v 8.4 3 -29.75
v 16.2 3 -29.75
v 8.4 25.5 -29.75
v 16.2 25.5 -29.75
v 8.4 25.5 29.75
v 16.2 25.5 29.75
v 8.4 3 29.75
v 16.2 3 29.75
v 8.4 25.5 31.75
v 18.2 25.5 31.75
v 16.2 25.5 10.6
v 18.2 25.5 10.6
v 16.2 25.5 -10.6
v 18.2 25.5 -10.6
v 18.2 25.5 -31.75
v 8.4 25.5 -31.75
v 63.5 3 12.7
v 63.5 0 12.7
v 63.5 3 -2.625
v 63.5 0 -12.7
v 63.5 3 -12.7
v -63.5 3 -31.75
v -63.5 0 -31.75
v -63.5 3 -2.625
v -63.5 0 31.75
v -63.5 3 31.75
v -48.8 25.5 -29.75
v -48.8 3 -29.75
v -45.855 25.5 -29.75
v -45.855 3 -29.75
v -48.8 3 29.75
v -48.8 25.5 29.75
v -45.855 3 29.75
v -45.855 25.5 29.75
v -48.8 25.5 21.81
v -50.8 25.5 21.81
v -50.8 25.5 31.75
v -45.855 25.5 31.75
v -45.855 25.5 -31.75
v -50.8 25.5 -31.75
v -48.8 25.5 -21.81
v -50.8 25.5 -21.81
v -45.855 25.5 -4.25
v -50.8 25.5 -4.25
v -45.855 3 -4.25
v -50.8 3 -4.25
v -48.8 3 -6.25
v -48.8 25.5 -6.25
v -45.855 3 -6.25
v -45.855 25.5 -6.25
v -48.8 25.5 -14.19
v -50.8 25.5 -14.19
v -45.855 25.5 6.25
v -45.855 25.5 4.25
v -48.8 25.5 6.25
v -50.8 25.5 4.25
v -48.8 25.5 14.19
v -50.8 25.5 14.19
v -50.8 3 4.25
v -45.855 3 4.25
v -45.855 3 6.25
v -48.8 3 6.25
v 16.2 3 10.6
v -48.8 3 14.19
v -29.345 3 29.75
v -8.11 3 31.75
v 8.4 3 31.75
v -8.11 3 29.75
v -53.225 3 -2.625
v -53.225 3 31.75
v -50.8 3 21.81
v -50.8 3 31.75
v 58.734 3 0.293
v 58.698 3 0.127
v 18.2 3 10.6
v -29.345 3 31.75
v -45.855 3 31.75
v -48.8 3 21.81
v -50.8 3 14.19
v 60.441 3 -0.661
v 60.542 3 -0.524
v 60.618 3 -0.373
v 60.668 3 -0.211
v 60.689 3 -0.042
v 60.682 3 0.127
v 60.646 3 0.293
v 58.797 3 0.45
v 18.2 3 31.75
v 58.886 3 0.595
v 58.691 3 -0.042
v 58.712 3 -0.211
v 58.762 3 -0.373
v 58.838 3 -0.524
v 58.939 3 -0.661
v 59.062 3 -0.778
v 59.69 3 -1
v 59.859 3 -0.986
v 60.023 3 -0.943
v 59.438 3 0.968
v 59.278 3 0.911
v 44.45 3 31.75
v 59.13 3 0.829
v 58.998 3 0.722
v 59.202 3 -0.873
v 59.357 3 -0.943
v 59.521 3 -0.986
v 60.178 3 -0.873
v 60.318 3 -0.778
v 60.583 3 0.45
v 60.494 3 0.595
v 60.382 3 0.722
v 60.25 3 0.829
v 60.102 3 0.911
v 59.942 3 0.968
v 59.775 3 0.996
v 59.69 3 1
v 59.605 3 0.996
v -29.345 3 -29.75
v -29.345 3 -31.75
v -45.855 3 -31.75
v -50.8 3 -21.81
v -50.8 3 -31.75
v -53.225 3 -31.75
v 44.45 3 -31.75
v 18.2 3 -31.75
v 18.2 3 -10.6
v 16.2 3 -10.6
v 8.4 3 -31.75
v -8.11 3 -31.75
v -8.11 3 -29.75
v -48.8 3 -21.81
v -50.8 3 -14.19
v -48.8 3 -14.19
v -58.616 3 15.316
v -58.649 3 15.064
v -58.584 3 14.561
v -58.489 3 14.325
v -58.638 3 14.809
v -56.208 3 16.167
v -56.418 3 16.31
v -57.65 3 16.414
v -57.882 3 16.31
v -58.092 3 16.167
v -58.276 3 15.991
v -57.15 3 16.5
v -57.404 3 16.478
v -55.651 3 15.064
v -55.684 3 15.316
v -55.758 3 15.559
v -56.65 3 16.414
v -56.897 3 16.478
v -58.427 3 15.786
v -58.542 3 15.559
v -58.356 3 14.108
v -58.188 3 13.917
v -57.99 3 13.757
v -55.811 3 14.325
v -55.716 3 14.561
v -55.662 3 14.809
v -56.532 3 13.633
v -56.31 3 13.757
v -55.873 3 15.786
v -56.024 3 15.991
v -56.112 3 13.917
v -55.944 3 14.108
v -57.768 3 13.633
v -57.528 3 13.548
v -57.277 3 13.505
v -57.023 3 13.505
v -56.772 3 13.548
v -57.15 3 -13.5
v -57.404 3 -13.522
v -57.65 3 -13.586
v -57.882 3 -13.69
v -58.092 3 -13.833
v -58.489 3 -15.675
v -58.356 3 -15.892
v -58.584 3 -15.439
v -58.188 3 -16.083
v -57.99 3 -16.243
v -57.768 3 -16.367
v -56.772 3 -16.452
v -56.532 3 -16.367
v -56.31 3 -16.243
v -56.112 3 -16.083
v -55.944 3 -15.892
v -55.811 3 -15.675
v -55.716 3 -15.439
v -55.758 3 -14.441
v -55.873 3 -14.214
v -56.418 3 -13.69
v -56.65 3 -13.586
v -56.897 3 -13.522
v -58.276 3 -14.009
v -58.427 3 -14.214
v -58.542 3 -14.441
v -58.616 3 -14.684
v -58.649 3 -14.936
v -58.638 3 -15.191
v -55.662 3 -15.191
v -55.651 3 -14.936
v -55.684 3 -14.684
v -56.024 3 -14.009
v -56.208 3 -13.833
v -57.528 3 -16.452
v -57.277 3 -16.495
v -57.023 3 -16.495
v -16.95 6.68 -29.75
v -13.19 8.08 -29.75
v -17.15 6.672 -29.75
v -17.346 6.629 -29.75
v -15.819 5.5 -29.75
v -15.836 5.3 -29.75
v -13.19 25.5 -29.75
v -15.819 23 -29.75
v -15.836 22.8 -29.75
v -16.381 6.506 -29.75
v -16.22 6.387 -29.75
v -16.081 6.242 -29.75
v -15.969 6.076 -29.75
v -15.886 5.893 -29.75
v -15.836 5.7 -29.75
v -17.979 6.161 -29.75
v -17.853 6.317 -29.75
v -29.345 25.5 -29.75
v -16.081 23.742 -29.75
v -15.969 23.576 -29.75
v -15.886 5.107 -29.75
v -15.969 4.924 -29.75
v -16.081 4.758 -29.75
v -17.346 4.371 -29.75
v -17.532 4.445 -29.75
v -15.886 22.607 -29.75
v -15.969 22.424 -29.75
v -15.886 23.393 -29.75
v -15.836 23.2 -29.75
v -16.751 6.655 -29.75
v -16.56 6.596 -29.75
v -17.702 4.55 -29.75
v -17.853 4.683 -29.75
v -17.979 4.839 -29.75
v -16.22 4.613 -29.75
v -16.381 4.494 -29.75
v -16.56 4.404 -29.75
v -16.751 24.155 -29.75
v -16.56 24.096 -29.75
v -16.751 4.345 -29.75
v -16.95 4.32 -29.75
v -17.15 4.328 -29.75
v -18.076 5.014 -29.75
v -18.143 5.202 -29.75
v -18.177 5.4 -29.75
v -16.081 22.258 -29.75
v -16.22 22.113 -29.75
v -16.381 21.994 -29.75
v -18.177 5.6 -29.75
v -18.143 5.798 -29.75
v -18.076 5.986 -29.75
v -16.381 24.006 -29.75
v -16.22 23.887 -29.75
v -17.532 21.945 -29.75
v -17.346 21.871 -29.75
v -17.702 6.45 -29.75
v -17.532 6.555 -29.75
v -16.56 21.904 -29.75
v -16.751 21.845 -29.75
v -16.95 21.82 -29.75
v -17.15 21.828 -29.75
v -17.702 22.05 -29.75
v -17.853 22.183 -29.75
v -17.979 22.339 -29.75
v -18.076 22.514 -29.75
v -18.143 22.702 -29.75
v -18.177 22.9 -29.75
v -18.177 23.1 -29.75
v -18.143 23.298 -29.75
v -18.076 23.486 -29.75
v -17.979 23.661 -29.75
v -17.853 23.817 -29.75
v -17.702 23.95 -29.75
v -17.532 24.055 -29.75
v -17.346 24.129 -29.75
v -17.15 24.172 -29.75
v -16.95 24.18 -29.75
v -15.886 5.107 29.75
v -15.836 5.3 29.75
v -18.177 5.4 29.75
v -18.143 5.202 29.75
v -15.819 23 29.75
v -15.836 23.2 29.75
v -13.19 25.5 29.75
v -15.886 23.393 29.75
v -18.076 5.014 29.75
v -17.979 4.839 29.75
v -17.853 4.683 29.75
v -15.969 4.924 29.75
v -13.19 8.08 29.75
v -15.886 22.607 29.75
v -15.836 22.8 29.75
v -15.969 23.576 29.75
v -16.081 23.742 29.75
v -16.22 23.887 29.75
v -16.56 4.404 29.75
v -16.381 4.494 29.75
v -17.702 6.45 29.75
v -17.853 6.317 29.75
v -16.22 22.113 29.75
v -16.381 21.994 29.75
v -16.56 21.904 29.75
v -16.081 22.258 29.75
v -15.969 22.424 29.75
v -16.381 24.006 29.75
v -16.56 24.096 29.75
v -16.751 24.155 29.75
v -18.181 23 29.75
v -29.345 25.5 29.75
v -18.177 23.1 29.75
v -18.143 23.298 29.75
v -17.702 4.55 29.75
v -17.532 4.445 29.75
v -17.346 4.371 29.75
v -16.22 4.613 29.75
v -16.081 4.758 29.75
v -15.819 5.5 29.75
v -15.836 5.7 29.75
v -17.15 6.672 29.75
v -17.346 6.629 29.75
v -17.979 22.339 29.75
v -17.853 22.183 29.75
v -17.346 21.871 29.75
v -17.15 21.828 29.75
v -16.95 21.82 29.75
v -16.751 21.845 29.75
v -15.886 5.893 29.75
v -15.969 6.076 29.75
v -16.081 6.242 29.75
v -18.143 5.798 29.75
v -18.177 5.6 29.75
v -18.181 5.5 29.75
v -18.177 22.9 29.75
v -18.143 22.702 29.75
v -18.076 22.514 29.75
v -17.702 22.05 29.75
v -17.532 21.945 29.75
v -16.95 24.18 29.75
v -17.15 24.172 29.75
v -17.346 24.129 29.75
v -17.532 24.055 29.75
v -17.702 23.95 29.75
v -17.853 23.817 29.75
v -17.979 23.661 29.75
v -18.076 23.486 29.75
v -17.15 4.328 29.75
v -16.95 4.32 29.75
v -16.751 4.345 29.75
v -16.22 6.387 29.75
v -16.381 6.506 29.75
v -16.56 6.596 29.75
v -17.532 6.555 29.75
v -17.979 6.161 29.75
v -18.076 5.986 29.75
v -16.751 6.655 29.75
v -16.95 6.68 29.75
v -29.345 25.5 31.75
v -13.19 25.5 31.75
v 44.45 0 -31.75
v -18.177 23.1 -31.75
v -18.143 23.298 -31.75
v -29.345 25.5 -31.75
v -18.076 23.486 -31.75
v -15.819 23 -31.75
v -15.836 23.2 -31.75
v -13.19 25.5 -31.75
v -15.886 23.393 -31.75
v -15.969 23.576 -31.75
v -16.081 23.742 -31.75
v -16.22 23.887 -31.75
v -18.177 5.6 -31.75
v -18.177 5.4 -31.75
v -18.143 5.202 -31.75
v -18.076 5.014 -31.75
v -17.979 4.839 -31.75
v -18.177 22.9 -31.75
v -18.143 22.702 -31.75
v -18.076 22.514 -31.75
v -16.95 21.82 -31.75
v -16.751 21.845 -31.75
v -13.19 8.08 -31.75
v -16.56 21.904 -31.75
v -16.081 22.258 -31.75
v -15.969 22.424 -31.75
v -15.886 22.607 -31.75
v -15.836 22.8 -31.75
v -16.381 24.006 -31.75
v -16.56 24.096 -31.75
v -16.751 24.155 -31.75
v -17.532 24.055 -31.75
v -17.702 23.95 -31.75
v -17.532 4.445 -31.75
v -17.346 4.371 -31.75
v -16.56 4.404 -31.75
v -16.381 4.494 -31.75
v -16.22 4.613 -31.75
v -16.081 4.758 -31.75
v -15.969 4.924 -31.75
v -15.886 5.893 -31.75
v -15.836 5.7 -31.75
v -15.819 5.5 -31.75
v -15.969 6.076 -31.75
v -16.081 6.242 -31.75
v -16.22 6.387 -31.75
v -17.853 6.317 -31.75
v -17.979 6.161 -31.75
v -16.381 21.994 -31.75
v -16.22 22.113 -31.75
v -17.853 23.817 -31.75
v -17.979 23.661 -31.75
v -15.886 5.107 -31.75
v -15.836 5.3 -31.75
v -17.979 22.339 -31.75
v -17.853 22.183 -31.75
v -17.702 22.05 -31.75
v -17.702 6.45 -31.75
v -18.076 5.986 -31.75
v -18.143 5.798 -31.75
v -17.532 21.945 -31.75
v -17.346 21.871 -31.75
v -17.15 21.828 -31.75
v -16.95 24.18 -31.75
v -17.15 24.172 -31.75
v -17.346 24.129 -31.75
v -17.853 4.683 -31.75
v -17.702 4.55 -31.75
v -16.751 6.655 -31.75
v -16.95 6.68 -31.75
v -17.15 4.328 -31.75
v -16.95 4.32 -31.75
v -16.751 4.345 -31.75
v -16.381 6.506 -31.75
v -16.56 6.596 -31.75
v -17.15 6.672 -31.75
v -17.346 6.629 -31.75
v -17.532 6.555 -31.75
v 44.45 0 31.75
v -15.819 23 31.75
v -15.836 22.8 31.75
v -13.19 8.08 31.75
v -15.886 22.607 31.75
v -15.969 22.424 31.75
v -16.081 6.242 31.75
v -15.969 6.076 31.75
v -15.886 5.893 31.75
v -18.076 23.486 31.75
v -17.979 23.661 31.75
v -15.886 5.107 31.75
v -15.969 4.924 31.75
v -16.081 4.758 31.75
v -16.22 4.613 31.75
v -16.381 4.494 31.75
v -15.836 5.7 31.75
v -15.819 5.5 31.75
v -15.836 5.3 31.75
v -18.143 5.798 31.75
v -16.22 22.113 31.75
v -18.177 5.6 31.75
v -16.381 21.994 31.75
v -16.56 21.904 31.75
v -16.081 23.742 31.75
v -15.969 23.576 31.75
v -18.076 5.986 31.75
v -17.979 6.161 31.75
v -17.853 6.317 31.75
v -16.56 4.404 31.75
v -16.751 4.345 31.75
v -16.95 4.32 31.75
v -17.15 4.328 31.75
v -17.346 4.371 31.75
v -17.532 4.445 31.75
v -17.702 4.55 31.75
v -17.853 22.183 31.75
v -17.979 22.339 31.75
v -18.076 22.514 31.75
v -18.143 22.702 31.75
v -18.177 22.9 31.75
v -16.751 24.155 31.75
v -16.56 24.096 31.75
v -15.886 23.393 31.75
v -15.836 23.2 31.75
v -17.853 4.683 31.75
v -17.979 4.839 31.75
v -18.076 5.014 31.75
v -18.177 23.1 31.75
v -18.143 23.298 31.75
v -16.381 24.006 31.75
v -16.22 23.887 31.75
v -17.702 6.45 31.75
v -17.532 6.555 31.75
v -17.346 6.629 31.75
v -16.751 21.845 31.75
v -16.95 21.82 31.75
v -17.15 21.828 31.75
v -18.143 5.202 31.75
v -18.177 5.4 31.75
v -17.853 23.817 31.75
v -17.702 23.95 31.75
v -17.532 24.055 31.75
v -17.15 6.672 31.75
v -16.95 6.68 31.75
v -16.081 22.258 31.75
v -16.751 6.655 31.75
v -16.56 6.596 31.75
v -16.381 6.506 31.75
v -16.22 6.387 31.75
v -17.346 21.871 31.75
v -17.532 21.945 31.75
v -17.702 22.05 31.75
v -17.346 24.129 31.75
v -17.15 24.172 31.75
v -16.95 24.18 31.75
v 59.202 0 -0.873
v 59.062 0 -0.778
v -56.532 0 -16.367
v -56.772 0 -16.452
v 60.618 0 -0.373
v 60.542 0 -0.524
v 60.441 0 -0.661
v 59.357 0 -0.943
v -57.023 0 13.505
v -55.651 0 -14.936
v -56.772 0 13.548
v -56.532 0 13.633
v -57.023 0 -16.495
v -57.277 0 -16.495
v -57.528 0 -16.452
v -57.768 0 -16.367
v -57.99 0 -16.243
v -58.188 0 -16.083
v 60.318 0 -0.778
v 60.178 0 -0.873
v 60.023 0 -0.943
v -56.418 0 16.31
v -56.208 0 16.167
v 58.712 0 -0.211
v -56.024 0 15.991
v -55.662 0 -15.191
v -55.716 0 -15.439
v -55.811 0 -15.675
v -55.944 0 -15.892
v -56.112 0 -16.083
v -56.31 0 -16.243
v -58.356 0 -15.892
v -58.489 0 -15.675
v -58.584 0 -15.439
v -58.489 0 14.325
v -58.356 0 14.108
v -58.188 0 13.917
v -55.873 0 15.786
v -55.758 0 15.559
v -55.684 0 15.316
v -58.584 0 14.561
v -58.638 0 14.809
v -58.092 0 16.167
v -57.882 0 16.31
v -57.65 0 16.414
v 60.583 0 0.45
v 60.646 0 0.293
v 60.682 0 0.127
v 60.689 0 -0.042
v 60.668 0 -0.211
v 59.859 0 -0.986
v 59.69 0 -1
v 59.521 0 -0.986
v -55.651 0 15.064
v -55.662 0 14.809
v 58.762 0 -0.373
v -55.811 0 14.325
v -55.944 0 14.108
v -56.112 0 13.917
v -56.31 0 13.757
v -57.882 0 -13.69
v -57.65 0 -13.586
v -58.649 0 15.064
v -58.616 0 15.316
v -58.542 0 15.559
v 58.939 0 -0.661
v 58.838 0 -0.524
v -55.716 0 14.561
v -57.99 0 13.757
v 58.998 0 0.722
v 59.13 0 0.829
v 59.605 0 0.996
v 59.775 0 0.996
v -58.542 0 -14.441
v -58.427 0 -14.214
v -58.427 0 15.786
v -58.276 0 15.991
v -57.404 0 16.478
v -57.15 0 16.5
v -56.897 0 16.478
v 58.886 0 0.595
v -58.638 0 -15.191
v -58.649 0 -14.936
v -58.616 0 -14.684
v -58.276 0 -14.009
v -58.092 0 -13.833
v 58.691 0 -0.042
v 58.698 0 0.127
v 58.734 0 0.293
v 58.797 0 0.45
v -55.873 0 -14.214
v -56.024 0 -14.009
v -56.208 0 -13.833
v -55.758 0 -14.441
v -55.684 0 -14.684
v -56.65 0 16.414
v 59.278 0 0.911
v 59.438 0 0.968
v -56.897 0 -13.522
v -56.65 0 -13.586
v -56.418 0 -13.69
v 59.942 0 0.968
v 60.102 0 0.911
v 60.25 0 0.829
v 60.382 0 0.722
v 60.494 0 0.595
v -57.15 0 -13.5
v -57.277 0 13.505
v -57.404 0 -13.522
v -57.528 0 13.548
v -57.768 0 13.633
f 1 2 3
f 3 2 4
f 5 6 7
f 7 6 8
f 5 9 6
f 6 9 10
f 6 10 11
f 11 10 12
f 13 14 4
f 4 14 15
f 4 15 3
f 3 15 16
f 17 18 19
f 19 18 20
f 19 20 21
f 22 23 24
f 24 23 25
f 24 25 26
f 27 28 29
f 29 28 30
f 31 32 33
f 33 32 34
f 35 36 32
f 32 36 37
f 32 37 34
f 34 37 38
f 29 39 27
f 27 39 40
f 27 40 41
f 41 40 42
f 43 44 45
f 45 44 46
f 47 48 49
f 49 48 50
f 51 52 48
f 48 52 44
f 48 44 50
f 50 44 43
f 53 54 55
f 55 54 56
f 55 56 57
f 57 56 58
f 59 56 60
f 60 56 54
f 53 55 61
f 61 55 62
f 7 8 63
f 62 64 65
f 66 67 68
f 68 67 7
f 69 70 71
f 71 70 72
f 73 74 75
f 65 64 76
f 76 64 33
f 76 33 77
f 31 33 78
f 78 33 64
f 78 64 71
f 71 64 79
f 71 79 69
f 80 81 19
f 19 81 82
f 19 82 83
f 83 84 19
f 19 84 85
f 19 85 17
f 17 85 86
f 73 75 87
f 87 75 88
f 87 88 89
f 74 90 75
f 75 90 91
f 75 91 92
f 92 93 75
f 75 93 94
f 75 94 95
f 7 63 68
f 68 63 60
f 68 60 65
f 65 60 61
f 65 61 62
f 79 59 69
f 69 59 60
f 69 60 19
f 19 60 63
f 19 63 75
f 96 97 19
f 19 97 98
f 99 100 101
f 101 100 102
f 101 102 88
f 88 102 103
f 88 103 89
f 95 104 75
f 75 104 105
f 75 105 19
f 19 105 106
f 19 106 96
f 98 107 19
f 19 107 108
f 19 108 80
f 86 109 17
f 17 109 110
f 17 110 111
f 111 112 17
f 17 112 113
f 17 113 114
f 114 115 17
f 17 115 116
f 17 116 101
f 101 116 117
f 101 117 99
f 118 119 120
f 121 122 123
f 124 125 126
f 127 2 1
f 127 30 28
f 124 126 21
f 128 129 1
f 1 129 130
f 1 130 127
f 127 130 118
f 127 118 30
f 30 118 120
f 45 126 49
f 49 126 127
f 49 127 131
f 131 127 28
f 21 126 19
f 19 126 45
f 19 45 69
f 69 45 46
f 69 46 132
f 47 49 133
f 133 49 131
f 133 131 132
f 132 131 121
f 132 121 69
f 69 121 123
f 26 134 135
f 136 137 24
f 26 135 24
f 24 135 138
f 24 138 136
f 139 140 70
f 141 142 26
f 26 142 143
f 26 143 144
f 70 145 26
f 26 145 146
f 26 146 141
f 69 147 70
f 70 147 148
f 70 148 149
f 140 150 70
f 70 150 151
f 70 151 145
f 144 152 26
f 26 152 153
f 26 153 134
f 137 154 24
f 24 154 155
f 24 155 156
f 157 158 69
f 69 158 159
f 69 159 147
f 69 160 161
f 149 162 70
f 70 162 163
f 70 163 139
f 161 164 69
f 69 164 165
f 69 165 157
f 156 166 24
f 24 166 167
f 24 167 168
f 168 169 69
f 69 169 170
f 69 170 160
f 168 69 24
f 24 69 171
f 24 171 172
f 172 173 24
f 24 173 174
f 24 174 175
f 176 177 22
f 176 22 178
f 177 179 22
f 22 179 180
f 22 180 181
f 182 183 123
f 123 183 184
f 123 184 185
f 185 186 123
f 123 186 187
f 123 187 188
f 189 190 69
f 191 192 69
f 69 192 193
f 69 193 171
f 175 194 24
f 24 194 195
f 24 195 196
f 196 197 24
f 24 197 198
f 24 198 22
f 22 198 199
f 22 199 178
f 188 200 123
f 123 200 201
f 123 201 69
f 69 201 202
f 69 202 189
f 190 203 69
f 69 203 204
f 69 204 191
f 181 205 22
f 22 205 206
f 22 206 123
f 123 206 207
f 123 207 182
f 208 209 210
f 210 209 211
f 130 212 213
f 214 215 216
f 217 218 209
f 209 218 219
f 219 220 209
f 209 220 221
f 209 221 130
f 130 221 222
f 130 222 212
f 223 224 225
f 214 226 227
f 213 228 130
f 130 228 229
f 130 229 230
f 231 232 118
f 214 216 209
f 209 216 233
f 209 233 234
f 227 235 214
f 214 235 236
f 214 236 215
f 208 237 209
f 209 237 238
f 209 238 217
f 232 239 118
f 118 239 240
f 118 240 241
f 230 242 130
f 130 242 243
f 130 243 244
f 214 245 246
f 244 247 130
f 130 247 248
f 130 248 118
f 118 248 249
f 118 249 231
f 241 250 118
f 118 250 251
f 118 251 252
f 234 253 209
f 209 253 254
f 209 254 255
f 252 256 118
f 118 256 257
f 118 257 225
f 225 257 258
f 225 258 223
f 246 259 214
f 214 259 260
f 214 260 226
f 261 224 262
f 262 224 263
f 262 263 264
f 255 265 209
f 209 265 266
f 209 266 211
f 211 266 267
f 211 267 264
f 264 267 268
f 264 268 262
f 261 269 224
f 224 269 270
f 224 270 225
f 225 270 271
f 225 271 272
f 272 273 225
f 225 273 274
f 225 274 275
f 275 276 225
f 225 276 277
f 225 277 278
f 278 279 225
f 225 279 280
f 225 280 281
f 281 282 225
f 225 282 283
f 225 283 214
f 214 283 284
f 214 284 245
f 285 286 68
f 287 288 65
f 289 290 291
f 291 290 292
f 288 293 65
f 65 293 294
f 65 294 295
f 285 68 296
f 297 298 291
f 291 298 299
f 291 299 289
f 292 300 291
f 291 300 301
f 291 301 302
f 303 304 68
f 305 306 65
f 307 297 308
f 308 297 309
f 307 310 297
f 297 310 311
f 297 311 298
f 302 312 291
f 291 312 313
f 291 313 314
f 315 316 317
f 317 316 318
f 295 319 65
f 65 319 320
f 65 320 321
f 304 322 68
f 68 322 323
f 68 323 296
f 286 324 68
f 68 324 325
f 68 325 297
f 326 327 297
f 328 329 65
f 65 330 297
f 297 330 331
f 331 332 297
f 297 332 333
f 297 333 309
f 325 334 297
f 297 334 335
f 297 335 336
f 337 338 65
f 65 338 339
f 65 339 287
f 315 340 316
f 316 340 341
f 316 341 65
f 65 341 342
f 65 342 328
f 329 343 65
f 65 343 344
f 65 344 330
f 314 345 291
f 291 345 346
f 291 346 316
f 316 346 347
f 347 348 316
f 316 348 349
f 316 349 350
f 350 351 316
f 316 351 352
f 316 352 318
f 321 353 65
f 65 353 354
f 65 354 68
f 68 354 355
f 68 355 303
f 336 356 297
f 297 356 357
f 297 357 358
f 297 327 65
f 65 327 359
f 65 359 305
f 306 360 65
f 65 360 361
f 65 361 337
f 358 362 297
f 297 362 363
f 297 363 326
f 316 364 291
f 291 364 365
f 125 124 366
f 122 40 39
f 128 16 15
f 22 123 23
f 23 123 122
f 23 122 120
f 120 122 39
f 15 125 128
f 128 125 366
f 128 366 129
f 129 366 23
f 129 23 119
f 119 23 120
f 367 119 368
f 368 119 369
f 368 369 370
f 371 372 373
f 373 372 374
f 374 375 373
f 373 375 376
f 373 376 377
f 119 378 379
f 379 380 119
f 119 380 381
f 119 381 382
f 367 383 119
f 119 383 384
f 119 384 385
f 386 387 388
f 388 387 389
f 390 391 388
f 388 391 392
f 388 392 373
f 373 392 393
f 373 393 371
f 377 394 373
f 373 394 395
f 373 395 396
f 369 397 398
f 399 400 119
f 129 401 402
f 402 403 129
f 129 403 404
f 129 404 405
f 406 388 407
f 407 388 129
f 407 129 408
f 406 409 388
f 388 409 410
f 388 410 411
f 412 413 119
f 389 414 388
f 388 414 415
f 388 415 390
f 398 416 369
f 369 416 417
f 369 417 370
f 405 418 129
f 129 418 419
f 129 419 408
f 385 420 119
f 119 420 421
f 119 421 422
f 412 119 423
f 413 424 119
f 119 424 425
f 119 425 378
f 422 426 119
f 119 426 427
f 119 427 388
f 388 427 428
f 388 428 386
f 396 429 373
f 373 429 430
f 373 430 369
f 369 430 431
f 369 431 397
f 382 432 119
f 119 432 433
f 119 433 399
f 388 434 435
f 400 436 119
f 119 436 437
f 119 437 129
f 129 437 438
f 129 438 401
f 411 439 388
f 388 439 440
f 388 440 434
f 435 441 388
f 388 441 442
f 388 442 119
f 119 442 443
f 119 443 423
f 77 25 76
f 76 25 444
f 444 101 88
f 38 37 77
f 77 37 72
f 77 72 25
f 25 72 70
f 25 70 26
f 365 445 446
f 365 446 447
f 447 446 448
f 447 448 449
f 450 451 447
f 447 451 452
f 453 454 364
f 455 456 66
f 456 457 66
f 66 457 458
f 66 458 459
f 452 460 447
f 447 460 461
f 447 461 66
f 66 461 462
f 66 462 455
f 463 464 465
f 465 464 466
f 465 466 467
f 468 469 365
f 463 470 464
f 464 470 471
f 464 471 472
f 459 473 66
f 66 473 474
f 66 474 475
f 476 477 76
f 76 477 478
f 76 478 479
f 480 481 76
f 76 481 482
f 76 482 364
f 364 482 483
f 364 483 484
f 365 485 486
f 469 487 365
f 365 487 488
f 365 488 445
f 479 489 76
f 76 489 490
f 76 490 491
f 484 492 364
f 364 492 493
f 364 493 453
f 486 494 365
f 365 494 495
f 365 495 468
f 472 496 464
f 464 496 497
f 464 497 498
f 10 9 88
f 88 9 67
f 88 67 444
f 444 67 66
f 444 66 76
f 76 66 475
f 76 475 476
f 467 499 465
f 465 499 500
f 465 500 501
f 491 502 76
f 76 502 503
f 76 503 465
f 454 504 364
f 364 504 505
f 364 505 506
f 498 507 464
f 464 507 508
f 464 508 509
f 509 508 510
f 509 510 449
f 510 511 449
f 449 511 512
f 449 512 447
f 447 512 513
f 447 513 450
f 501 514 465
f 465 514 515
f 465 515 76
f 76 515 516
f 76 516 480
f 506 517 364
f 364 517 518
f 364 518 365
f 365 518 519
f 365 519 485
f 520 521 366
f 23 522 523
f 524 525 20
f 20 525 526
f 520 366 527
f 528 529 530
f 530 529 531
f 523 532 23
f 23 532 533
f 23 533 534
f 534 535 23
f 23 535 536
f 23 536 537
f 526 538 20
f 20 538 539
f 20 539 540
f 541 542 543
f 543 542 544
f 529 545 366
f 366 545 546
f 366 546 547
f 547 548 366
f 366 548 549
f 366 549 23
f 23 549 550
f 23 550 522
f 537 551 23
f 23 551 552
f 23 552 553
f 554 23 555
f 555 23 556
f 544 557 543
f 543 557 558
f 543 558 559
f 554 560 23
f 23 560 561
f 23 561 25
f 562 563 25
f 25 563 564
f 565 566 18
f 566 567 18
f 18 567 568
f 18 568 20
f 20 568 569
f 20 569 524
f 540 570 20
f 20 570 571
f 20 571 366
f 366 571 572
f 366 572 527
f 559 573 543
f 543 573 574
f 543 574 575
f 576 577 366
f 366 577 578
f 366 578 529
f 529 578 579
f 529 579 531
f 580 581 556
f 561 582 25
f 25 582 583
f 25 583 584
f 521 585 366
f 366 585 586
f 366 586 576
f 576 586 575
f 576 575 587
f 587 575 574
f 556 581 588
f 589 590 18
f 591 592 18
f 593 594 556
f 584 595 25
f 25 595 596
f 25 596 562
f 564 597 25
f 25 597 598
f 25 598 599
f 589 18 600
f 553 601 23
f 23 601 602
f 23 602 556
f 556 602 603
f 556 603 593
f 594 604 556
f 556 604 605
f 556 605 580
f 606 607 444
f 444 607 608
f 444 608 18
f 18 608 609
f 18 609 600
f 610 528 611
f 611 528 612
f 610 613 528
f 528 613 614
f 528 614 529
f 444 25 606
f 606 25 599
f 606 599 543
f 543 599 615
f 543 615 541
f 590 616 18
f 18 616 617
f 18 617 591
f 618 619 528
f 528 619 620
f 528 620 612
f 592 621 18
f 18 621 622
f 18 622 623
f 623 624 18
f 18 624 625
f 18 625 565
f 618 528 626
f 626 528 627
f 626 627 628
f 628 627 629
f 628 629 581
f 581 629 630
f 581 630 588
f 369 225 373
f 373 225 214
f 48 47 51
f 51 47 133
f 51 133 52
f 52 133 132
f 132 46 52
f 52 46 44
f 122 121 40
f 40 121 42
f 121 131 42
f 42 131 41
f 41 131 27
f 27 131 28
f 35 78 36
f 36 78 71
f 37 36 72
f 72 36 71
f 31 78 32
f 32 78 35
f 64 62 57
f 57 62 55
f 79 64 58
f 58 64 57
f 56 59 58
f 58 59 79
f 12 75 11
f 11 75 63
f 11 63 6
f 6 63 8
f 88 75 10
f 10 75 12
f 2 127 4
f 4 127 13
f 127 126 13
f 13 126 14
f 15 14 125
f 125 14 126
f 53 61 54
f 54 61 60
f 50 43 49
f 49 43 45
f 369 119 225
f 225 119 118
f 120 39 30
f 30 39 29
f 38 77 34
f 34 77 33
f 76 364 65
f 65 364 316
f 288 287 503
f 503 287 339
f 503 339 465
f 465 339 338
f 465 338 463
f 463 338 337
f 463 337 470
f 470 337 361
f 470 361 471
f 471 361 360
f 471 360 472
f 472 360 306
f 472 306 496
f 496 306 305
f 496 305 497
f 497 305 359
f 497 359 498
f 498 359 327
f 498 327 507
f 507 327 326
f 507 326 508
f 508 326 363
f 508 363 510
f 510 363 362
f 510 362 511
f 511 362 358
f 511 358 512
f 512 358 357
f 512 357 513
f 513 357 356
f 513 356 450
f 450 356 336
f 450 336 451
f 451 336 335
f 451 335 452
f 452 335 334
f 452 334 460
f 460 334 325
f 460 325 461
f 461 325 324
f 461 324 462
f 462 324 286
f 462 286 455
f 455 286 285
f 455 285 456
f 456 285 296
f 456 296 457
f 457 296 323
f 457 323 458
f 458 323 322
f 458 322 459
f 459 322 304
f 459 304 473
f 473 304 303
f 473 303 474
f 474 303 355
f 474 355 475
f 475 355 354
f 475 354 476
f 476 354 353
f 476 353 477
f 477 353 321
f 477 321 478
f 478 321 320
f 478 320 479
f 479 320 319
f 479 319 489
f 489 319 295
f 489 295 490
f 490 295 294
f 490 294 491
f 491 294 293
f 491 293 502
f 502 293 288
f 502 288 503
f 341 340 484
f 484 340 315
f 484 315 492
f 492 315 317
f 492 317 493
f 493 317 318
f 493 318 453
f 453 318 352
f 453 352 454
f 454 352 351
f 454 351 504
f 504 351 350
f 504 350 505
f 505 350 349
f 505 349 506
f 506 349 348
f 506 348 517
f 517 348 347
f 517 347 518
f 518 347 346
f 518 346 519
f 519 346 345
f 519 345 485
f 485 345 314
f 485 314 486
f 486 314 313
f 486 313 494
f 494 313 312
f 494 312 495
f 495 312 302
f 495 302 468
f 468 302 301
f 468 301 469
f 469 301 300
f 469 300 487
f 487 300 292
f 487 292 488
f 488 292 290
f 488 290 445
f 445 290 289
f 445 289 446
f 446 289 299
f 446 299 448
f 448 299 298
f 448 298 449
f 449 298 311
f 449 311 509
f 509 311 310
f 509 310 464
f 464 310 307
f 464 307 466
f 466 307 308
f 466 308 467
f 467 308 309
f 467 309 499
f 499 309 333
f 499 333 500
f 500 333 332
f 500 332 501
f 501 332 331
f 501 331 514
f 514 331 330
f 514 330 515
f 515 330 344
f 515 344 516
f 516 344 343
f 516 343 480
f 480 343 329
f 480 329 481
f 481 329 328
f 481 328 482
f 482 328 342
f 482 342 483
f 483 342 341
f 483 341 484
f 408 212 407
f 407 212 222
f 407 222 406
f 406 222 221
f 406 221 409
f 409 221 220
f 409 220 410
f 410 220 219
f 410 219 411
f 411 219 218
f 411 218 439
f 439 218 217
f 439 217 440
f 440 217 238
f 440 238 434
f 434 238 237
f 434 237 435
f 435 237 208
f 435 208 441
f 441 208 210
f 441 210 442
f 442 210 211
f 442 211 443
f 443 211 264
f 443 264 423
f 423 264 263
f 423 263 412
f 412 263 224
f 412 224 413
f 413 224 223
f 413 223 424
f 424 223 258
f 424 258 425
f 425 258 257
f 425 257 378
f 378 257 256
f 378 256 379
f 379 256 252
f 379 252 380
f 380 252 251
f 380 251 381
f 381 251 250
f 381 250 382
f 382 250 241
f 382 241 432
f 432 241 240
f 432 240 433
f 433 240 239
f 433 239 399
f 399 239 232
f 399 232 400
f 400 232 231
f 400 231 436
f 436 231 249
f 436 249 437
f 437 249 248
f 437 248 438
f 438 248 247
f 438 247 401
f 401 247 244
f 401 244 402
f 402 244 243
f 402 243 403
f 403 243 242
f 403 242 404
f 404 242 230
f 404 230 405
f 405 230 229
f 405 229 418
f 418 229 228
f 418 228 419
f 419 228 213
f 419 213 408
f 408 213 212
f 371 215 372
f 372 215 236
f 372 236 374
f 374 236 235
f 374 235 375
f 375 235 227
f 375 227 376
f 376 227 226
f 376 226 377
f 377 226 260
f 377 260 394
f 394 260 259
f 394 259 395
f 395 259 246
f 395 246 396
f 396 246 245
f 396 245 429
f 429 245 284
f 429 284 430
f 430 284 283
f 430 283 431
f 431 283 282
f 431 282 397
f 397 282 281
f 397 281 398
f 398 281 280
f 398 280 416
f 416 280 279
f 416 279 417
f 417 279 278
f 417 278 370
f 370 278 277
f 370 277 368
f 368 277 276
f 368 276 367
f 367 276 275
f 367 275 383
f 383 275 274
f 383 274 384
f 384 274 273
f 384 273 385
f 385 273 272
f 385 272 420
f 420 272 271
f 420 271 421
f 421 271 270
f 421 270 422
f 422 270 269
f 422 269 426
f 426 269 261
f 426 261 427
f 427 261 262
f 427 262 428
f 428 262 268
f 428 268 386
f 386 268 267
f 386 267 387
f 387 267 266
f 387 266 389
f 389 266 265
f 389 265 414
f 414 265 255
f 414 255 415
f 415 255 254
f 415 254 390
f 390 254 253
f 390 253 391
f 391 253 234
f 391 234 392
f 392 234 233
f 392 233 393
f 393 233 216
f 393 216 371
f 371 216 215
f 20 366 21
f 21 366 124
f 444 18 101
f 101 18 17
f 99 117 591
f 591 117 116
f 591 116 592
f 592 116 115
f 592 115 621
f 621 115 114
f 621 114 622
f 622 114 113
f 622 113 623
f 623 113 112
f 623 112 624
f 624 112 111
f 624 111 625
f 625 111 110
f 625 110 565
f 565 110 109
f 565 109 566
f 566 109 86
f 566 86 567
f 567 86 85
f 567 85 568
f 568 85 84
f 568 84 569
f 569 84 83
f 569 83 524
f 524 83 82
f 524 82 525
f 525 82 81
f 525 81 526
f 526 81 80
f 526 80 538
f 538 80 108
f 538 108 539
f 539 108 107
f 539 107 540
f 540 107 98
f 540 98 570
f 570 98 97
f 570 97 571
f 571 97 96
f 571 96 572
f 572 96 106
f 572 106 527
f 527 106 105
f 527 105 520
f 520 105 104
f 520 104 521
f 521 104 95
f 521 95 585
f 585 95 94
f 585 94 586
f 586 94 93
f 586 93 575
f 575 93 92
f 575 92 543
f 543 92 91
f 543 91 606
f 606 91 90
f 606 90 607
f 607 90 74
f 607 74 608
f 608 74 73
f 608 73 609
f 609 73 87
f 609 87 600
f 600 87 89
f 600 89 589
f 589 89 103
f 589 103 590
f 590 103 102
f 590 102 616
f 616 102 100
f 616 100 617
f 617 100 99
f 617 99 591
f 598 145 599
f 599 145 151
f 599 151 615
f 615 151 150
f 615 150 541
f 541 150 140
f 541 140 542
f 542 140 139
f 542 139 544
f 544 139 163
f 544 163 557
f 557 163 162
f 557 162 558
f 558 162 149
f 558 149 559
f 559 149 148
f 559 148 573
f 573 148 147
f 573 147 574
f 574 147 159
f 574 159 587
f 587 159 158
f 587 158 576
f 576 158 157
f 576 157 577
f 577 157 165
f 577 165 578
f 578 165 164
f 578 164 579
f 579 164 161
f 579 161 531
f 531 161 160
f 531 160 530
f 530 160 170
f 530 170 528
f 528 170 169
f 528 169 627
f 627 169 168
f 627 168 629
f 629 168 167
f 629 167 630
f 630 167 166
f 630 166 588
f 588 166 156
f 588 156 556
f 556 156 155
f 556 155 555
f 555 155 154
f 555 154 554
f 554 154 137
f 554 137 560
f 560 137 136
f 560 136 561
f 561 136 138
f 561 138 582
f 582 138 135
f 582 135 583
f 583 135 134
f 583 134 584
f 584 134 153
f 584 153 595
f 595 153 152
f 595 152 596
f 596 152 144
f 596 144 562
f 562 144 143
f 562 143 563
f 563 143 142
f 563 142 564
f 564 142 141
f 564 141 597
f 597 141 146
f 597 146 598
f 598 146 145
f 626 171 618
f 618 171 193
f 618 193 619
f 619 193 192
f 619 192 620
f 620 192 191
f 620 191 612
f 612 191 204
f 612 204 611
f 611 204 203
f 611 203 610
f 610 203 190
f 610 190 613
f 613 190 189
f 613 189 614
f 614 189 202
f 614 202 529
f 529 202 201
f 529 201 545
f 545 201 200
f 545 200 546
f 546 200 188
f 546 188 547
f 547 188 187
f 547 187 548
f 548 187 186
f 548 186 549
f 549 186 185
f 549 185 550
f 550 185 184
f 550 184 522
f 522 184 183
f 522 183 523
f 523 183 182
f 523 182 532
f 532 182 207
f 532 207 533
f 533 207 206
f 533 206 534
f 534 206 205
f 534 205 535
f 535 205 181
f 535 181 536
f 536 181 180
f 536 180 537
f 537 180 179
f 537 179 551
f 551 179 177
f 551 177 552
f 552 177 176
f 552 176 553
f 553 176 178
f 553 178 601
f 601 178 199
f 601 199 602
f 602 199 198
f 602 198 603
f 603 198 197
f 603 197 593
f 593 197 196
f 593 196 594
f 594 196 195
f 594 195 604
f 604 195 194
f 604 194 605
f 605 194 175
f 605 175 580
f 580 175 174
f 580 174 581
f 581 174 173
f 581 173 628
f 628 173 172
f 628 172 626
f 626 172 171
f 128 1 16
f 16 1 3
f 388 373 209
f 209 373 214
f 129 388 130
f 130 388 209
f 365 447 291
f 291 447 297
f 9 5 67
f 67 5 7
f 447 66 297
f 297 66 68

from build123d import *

# Parameters (mm, degrees)
SKETCH1_W               = 127
SKETCH1_H               = 63.5
BOSS_EXTRUDE1_DEPTH     = 3
BOSS_EXTRUDE2_DEPTH     = 22.5
SKETCH3_W               = 15.24
SKETCH3_H               = 22.5
CUT_EXTRUDE1_DEPTH      = 132.466012718
SKETCH4_W               = 2
SKETCH4_H               = 7.94
SKETCH4_H_2             = 19.15
BOSS_EXTRUDE4_DEPTH     = 22.5
SKETCH5_W               = 16.51
SKETCH5_H               = 22.5
CUT_EXTRUDE2_DEPTH      = 93.004075997
CUT_EXTRUDE2_DEPTH_BACK = 93.004075997
SKETCH6_W               = 12.7
SKETCH6_H               = 2
CUT_EXTRUDE3_DEPTH      = 22.5
CUT_EXTRUDE4_DEPTH      = 94.352825346
CUT_EXTRUDE5_DEPTH      = 76.43581709
F_2_0MM_DOWEL_HOLE1_D   = 2
SKETCH13_W              = 34.845
SKETCH13_H              = 22.5
CUT_EXTRUDE6_DEPTH      = 12.5
F_3_0MM_DOWEL_HOLE1_D   = 3
CUT_EXTRUDE7_DEPTH      = 94.352825346


with BuildPart() as part:
    # Sketch1 → Boss-Extrude1 (new body)
    with BuildSketch(Plane(origin=(0, 0, 0), x_dir=(1, 0, 0), z_dir=(0, 1, 0))):
        Rectangle(SKETCH1_W, SKETCH1_H)
    extrude(amount=BOSS_EXTRUDE1_DEPTH)

    # Sketch2 → Boss-Extrude2 (add)
    with BuildSketch(Plane(origin=(0, 3, 0), x_dir=(1, 0, 0), z_dir=(0, 1, 0))):
        Polygon((-63.5, 29.75), (-61.5, 29.75), (61.5, 29.75), (61.5, -29.75), (-61.5, -29.75), (-63.5, -29.75), (-63.5, -31.75), (63.5, -31.75), (63.5, 31.75), (-63.5, 31.75), align=None)
    extrude(amount=BOSS_EXTRUDE2_DEPTH)

    # Sketch3 → Cut-Extrude1 (cut, through all)
    with BuildSketch(Plane.ZY.offset(-61.5)):
        with Locations((0, 14.25)):
            Rectangle(SKETCH3_W, SKETCH3_H)
    extrude(amount=-CUT_EXTRUDE1_DEPTH, mode=Mode.SUBTRACT)

    # Sketch4 → Boss-Extrude4 (add)
    with BuildSketch(Plane(origin=(0, 3, 0), x_dir=(1, 0, 0), z_dir=(0, 1, 0))):
        with Locations((-49.8, -25.78)):
            Rectangle(SKETCH4_W, SKETCH4_H)
        with Locations((17.2, -20.175)):
            Rectangle(SKETCH4_W, SKETCH4_H_2)
        Polygon((-50.8, -14.19), (-48.8, -14.19), (-48.8, -6.25), (5.5, -6.25), (5.5, -4.25), (-50.8, -4.25), align=None)
        with Locations((-49.8, 25.78)):
            Rectangle(SKETCH4_W, SKETCH4_H)
        Polygon((-48.8, 14.19), (-50.8, 14.19), (-50.8, 4.25), (5.5, 4.25), (5.5, 6.25), (-48.8, 6.25), align=None)
        with Locations((17.2, 20.175)):
            Rectangle(SKETCH4_W, SKETCH4_H_2)
    extrude(amount=BOSS_EXTRUDE4_DEPTH)

    # Sketch5 → Cut-Extrude2 (cut, two sides)
    with BuildSketch(Plane(origin=(0, 0, 29.75), x_dir=(-1, 0, 0), z_dir=(0, 0, -1))) as cut_extrude2_sk:
        with Locations((37.6, 14.25)):
            Rectangle(SKETCH5_W, SKETCH5_H)
    extrude(amount=CUT_EXTRUDE2_DEPTH, mode=Mode.SUBTRACT)
    extrude(cut_extrude2_sk.sketch, amount=-CUT_EXTRUDE2_DEPTH_BACK, mode=Mode.SUBTRACT)

    # Sketch6 → Cut-Extrude3 (cut)
    with BuildSketch(Plane(origin=(0, 25.5, 0), x_dir=(1, 0, 0), z_dir=(0, 1, 0))):
        Polygon((18.2, 29.75), (18.2, 31.75), (63.5, 31.75), (63.5, 7.62), (61.5, 7.62), (61.5, 29.75), align=None)
        Polygon((18.2, -29.75), (18.2, -31.75), (63.5, -31.75), (63.5, -7.62), (61.5, -7.62), (61.5, -29.75), align=None)
        with Locations((-57.15, 30.75)):
            Rectangle(SKETCH6_W, SKETCH6_H)
        with Locations((-57.15, -30.75)):
            Rectangle(SKETCH6_W, SKETCH6_H)
    extrude(amount=-CUT_EXTRUDE3_DEPTH, mode=Mode.SUBTRACT)

    # Sketch8 → Cut-Extrude4 (cut, through all)
    with BuildSketch(Plane.XY.offset(31.75)):
        with BuildLine():
            ThreePointArc((-17, 24.1811), (-18.1811, 23), (-17, 21.8189))
            Line((-17, 21.8189), (-17, 24.1811))
        make_face()
        with BuildLine():
            Line((-17, 24.1811), (-17, 21.8189))
            ThreePointArc((-17, 21.8189), (-16.164836181, 22.164836181), (-15.8189, 23))
            ThreePointArc((-15.8189, 23), (-16.164836181, 23.835163819), (-17, 24.1811))
        make_face()
        with BuildLine():
            ThreePointArc((-17, 6.6811), (-18.1811, 5.5), (-17, 4.3189))
            Line((-17, 4.3189), (-17, 6.6811))
        make_face()
        with BuildLine():
            Line((-17, 6.6811), (-17, 4.3189))
            ThreePointArc((-17, 4.3189), (-16.164836181, 4.664836181), (-15.8189, 5.5))
            ThreePointArc((-15.8189, 5.5), (-16.164836181, 6.335163819), (-17, 6.6811))
        make_face()
    extrude(amount=-CUT_EXTRUDE4_DEPTH, mode=Mode.SUBTRACT)

    # Sketch10 → Cut-Extrude5 (cut, through all)
    with BuildSketch(Plane.XZ):
        Polygon((63.5, 31.75), (44.45, 31.75), (63.5, 12.7), align=None)
        Polygon((63.5, -31.75), (63.5, -12.7), (44.45, -31.75), align=None)
    extrude(amount=-CUT_EXTRUDE5_DEPTH, mode=Mode.SUBTRACT)

    # Ø2.0mm Dowel Hole1 (through all)
    with Locations(Plane(origin=(59.69, 0, 0), x_dir=(0, 0, -1), z_dir=(0, -1, 0))):
        with Locations((0, 0)):
            Hole(F_2_0MM_DOWEL_HOLE1_D / 2)

    # Sketch13 → Cut-Extrude6 (cut)
    with BuildSketch(Plane.XY.offset(6.25)):
        with Locations((-11.9225, 14.25)):
            Rectangle(SKETCH13_W, SKETCH13_H)
    extrude(amount=-CUT_EXTRUDE6_DEPTH, mode=Mode.SUBTRACT)

    # Ø3.0mm Dowel Hole1 (through all)
    with Locations(Plane(origin=(-57.15, 3, -15), x_dir=(0, 0, 1), z_dir=(0, 1, 0))):
        with Locations((0, 0), (30, 0)):
            Hole(F_3_0MM_DOWEL_HOLE1_D / 2)

    # Sketch16 → Cut-Extrude7 (cut, through all)
    with BuildSketch(Plane.XY.offset(31.75)):
        Polygon((8.4, 25.5), (-13.19, 25.5), (-13.19, 8.08), (-8.11, 3), (8.4, 3), align=None)
    extrude(amount=-CUT_EXTRUDE7_DEPTH, mode=Mode.SUBTRACT)


solid = part.part
